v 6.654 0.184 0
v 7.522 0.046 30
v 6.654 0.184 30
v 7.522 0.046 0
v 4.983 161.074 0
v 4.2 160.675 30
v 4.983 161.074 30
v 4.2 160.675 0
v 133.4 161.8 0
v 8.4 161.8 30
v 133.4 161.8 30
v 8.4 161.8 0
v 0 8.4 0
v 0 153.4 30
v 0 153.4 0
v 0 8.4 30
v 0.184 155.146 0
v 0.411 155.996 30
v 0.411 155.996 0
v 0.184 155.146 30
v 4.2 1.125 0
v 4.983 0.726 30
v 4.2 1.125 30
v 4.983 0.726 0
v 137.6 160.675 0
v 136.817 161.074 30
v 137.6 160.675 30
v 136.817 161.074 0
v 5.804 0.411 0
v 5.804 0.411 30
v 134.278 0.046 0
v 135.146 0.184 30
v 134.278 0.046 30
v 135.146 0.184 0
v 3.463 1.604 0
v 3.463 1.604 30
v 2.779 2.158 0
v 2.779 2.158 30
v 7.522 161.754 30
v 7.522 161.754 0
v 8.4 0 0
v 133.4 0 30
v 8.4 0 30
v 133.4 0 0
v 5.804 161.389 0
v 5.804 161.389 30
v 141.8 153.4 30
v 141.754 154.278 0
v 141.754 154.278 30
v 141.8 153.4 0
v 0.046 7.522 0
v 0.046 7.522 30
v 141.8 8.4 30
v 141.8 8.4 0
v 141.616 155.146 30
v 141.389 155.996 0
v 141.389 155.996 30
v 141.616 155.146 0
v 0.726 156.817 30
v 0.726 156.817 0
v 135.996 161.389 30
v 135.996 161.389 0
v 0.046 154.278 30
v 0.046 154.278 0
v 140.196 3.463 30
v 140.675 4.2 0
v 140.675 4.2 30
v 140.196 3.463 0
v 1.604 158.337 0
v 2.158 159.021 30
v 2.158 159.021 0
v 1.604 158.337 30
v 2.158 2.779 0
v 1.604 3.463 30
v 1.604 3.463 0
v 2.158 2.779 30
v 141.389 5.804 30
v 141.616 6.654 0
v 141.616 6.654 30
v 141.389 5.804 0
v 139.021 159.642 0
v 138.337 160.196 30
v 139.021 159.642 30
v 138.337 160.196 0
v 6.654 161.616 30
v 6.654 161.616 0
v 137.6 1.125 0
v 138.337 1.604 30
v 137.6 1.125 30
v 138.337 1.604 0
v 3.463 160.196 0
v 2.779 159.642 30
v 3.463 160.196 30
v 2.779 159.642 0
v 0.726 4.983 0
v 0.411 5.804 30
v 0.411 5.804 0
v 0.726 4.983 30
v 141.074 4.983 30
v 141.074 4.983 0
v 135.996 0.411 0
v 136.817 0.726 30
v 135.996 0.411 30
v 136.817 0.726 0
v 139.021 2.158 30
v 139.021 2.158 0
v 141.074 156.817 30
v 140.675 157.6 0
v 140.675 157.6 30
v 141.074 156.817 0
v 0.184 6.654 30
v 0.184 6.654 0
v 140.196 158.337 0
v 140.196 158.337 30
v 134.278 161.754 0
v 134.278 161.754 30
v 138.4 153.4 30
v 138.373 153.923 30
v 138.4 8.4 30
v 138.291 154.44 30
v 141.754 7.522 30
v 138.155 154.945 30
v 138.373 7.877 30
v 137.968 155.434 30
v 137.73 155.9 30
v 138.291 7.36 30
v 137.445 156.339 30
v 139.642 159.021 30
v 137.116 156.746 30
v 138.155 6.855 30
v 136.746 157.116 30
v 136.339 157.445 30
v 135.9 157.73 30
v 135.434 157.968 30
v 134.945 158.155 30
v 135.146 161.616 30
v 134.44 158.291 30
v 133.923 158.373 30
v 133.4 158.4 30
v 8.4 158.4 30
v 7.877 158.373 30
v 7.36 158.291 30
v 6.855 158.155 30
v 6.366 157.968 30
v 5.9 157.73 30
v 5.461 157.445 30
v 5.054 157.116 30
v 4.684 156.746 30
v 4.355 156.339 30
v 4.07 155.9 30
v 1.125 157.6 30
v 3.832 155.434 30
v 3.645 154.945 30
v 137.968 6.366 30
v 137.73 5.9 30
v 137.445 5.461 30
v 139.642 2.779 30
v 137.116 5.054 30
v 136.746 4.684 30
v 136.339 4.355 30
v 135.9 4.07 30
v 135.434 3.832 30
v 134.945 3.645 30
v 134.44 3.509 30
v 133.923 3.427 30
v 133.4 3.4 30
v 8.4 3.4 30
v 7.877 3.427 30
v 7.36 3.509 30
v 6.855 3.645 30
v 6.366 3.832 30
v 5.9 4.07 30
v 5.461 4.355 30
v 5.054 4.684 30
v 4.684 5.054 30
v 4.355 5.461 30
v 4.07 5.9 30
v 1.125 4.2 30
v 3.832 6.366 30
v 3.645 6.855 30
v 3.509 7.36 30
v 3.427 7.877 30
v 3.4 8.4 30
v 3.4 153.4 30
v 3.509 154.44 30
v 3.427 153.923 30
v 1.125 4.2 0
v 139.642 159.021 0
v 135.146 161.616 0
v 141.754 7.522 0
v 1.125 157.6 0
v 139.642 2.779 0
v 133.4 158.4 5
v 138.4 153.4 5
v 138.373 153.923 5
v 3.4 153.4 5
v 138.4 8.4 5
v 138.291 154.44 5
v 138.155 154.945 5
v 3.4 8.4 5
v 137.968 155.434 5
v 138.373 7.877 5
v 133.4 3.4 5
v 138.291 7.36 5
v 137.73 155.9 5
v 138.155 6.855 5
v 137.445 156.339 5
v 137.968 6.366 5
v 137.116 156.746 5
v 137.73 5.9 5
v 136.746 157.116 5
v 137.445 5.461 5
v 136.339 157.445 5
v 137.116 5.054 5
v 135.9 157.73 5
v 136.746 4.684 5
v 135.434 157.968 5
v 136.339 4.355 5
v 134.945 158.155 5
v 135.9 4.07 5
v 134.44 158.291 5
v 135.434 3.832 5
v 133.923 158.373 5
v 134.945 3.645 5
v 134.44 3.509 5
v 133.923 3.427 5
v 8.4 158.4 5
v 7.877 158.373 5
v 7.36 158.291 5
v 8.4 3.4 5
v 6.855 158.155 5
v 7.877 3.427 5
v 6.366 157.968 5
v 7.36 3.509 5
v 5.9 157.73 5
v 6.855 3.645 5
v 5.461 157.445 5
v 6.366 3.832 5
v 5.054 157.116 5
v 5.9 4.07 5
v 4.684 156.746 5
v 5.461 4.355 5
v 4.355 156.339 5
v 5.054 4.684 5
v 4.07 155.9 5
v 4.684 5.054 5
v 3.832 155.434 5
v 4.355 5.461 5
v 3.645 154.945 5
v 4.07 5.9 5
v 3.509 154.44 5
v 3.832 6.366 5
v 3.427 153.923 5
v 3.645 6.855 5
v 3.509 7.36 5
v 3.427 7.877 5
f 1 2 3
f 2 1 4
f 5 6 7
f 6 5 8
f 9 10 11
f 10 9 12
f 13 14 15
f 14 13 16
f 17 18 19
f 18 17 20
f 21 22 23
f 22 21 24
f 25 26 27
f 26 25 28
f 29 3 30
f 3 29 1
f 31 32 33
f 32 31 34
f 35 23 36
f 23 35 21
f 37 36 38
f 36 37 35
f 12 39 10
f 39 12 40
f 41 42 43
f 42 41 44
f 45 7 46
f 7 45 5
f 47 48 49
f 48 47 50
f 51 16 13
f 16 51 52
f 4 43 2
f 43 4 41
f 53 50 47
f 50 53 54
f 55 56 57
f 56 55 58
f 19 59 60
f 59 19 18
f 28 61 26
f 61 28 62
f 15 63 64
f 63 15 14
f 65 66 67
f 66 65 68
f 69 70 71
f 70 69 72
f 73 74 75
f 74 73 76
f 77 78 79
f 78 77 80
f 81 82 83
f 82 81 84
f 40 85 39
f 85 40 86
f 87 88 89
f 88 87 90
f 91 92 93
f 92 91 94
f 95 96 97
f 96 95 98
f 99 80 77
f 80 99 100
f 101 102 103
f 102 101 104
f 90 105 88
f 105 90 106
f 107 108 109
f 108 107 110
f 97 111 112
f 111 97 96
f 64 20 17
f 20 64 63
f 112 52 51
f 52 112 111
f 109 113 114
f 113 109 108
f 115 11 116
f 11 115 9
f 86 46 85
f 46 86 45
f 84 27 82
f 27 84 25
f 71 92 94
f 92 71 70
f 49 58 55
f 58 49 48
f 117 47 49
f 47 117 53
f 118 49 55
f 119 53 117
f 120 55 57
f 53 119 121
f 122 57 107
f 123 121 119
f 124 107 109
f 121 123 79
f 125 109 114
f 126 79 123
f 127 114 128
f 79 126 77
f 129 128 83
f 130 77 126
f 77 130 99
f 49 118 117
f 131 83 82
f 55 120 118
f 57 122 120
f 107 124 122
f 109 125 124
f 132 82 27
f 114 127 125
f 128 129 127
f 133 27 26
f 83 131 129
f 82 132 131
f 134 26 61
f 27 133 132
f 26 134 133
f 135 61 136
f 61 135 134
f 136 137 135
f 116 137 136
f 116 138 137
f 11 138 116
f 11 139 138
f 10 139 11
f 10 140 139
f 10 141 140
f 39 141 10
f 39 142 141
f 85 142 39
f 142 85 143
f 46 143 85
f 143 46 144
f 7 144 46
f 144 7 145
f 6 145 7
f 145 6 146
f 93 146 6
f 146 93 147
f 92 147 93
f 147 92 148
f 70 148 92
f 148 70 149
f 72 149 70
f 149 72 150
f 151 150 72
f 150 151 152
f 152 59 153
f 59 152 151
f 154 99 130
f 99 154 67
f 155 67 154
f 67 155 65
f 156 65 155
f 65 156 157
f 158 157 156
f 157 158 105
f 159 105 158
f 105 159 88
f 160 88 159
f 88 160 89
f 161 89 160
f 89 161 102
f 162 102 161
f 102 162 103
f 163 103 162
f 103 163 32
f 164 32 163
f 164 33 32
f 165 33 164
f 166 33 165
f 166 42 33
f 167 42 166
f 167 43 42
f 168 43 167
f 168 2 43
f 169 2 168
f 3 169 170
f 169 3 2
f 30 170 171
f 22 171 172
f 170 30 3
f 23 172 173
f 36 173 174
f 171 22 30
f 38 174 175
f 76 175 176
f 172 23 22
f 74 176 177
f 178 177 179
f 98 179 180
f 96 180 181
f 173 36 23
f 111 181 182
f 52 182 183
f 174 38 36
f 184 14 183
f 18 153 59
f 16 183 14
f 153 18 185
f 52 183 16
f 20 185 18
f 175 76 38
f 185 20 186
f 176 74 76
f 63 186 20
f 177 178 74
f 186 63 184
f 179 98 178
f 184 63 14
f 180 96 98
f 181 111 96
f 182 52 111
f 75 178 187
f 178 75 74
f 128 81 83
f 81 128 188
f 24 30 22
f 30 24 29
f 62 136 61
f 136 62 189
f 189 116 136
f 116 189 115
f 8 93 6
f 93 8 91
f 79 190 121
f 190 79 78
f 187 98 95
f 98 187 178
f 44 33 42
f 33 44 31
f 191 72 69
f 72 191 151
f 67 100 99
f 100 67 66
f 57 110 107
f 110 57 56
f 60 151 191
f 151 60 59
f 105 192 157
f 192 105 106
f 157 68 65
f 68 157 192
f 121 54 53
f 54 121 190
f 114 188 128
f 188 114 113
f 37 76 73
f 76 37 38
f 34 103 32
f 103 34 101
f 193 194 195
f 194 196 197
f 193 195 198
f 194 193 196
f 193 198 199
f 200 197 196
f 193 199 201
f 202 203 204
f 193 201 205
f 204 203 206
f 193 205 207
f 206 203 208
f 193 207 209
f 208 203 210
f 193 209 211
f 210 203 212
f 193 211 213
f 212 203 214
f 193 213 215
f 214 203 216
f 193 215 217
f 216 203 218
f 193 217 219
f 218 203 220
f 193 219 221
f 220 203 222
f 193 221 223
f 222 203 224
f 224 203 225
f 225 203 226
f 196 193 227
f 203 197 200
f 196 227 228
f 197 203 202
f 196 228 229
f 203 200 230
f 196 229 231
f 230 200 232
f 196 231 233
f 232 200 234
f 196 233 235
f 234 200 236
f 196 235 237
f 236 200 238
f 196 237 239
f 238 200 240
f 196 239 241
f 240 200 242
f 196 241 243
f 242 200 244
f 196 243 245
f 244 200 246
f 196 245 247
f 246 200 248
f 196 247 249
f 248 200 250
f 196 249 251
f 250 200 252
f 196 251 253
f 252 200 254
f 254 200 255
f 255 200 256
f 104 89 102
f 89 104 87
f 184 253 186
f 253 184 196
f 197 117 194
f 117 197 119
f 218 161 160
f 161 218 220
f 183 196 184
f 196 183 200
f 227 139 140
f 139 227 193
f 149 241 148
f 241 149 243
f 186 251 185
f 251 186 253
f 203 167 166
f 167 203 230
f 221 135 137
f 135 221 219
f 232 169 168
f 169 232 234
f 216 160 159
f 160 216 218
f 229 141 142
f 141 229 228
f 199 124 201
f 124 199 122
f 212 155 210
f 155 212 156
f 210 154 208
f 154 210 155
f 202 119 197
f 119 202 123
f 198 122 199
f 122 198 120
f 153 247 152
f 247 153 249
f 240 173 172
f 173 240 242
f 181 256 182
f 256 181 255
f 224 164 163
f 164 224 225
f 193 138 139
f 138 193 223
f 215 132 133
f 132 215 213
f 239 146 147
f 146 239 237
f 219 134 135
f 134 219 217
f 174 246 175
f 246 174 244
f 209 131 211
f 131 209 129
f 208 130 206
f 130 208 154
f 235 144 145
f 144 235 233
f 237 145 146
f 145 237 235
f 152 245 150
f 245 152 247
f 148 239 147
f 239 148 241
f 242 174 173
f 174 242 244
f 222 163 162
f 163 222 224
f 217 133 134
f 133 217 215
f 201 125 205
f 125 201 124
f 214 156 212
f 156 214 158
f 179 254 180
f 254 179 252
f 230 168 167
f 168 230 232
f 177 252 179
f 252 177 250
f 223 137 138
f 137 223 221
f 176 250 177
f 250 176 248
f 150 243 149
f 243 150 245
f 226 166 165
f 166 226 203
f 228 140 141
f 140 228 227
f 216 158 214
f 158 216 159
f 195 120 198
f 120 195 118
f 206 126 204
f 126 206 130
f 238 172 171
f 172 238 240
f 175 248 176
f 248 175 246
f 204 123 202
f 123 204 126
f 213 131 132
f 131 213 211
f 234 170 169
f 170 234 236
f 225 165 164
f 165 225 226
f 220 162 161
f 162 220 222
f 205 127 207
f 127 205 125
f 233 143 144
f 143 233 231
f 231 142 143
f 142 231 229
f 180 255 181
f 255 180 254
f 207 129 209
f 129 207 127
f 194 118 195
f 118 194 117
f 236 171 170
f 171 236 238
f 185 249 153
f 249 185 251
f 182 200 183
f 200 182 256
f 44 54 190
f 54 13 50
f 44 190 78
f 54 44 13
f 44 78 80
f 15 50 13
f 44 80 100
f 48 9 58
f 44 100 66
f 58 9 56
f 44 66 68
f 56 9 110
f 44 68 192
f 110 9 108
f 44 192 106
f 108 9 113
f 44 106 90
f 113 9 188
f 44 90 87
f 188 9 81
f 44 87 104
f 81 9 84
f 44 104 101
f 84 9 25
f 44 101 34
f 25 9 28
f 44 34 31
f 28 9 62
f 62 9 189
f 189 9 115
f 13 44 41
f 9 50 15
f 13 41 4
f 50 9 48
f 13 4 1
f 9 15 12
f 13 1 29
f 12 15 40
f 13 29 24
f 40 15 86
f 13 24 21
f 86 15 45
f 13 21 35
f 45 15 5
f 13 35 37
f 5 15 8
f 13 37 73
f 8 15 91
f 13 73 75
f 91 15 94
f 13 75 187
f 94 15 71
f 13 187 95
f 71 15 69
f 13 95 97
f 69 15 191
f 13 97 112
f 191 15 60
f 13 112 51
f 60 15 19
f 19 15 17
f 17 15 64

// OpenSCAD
// ============================================
// Wasser PB-60EA Booster Pump Protector — LID
// Print upside down (top surface on build plate).
// No supports needed.
// Size: ~142 x 162 x 30 mm
// ============================================

include <pump_protector.scad>

// Flip so top plate sits on build plate, grip skirt faces up
grip_wall   = wall;
grip_width  = box_width + 2 * (grip_wall + lip_clearance);

translate([0, grip_width, lid_top_th])
    rotate([180, 0, 0])
        protector_lid();
